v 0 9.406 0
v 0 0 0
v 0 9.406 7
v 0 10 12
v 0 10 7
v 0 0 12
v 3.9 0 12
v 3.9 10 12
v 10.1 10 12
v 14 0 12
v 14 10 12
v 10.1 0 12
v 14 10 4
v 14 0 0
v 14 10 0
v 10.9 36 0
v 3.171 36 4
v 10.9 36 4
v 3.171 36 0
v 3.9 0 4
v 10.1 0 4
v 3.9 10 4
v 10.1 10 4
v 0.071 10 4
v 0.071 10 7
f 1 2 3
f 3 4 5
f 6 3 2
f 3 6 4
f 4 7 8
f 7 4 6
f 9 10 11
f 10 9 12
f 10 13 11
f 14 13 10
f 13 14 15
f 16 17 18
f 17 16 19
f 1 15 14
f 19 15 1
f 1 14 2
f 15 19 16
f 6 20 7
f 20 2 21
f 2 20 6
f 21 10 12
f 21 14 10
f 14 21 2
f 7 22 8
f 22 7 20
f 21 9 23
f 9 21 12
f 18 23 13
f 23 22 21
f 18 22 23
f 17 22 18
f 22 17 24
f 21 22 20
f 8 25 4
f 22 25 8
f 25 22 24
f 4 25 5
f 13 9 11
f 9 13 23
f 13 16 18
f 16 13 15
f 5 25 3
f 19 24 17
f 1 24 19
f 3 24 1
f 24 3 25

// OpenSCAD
difference() {
    cube([14, 36, 12]);

    translate([3.9, -1, 4]) {
        cube([6.2, 38, 10]);
    }
    
    translate([-1, 10, 4]) {
        cube([16, 36, 12]);
    }
    
    translate([14, 10, -1]) {
        rotate([0, 0, 6.8]) {
            cube([10, 30, 8]);
        }
    }

    translate([-10, 10, -1]) {
        rotate([0, 0, -6.8]) {
            cube([10, 30, 8]);
        }
    }

}
